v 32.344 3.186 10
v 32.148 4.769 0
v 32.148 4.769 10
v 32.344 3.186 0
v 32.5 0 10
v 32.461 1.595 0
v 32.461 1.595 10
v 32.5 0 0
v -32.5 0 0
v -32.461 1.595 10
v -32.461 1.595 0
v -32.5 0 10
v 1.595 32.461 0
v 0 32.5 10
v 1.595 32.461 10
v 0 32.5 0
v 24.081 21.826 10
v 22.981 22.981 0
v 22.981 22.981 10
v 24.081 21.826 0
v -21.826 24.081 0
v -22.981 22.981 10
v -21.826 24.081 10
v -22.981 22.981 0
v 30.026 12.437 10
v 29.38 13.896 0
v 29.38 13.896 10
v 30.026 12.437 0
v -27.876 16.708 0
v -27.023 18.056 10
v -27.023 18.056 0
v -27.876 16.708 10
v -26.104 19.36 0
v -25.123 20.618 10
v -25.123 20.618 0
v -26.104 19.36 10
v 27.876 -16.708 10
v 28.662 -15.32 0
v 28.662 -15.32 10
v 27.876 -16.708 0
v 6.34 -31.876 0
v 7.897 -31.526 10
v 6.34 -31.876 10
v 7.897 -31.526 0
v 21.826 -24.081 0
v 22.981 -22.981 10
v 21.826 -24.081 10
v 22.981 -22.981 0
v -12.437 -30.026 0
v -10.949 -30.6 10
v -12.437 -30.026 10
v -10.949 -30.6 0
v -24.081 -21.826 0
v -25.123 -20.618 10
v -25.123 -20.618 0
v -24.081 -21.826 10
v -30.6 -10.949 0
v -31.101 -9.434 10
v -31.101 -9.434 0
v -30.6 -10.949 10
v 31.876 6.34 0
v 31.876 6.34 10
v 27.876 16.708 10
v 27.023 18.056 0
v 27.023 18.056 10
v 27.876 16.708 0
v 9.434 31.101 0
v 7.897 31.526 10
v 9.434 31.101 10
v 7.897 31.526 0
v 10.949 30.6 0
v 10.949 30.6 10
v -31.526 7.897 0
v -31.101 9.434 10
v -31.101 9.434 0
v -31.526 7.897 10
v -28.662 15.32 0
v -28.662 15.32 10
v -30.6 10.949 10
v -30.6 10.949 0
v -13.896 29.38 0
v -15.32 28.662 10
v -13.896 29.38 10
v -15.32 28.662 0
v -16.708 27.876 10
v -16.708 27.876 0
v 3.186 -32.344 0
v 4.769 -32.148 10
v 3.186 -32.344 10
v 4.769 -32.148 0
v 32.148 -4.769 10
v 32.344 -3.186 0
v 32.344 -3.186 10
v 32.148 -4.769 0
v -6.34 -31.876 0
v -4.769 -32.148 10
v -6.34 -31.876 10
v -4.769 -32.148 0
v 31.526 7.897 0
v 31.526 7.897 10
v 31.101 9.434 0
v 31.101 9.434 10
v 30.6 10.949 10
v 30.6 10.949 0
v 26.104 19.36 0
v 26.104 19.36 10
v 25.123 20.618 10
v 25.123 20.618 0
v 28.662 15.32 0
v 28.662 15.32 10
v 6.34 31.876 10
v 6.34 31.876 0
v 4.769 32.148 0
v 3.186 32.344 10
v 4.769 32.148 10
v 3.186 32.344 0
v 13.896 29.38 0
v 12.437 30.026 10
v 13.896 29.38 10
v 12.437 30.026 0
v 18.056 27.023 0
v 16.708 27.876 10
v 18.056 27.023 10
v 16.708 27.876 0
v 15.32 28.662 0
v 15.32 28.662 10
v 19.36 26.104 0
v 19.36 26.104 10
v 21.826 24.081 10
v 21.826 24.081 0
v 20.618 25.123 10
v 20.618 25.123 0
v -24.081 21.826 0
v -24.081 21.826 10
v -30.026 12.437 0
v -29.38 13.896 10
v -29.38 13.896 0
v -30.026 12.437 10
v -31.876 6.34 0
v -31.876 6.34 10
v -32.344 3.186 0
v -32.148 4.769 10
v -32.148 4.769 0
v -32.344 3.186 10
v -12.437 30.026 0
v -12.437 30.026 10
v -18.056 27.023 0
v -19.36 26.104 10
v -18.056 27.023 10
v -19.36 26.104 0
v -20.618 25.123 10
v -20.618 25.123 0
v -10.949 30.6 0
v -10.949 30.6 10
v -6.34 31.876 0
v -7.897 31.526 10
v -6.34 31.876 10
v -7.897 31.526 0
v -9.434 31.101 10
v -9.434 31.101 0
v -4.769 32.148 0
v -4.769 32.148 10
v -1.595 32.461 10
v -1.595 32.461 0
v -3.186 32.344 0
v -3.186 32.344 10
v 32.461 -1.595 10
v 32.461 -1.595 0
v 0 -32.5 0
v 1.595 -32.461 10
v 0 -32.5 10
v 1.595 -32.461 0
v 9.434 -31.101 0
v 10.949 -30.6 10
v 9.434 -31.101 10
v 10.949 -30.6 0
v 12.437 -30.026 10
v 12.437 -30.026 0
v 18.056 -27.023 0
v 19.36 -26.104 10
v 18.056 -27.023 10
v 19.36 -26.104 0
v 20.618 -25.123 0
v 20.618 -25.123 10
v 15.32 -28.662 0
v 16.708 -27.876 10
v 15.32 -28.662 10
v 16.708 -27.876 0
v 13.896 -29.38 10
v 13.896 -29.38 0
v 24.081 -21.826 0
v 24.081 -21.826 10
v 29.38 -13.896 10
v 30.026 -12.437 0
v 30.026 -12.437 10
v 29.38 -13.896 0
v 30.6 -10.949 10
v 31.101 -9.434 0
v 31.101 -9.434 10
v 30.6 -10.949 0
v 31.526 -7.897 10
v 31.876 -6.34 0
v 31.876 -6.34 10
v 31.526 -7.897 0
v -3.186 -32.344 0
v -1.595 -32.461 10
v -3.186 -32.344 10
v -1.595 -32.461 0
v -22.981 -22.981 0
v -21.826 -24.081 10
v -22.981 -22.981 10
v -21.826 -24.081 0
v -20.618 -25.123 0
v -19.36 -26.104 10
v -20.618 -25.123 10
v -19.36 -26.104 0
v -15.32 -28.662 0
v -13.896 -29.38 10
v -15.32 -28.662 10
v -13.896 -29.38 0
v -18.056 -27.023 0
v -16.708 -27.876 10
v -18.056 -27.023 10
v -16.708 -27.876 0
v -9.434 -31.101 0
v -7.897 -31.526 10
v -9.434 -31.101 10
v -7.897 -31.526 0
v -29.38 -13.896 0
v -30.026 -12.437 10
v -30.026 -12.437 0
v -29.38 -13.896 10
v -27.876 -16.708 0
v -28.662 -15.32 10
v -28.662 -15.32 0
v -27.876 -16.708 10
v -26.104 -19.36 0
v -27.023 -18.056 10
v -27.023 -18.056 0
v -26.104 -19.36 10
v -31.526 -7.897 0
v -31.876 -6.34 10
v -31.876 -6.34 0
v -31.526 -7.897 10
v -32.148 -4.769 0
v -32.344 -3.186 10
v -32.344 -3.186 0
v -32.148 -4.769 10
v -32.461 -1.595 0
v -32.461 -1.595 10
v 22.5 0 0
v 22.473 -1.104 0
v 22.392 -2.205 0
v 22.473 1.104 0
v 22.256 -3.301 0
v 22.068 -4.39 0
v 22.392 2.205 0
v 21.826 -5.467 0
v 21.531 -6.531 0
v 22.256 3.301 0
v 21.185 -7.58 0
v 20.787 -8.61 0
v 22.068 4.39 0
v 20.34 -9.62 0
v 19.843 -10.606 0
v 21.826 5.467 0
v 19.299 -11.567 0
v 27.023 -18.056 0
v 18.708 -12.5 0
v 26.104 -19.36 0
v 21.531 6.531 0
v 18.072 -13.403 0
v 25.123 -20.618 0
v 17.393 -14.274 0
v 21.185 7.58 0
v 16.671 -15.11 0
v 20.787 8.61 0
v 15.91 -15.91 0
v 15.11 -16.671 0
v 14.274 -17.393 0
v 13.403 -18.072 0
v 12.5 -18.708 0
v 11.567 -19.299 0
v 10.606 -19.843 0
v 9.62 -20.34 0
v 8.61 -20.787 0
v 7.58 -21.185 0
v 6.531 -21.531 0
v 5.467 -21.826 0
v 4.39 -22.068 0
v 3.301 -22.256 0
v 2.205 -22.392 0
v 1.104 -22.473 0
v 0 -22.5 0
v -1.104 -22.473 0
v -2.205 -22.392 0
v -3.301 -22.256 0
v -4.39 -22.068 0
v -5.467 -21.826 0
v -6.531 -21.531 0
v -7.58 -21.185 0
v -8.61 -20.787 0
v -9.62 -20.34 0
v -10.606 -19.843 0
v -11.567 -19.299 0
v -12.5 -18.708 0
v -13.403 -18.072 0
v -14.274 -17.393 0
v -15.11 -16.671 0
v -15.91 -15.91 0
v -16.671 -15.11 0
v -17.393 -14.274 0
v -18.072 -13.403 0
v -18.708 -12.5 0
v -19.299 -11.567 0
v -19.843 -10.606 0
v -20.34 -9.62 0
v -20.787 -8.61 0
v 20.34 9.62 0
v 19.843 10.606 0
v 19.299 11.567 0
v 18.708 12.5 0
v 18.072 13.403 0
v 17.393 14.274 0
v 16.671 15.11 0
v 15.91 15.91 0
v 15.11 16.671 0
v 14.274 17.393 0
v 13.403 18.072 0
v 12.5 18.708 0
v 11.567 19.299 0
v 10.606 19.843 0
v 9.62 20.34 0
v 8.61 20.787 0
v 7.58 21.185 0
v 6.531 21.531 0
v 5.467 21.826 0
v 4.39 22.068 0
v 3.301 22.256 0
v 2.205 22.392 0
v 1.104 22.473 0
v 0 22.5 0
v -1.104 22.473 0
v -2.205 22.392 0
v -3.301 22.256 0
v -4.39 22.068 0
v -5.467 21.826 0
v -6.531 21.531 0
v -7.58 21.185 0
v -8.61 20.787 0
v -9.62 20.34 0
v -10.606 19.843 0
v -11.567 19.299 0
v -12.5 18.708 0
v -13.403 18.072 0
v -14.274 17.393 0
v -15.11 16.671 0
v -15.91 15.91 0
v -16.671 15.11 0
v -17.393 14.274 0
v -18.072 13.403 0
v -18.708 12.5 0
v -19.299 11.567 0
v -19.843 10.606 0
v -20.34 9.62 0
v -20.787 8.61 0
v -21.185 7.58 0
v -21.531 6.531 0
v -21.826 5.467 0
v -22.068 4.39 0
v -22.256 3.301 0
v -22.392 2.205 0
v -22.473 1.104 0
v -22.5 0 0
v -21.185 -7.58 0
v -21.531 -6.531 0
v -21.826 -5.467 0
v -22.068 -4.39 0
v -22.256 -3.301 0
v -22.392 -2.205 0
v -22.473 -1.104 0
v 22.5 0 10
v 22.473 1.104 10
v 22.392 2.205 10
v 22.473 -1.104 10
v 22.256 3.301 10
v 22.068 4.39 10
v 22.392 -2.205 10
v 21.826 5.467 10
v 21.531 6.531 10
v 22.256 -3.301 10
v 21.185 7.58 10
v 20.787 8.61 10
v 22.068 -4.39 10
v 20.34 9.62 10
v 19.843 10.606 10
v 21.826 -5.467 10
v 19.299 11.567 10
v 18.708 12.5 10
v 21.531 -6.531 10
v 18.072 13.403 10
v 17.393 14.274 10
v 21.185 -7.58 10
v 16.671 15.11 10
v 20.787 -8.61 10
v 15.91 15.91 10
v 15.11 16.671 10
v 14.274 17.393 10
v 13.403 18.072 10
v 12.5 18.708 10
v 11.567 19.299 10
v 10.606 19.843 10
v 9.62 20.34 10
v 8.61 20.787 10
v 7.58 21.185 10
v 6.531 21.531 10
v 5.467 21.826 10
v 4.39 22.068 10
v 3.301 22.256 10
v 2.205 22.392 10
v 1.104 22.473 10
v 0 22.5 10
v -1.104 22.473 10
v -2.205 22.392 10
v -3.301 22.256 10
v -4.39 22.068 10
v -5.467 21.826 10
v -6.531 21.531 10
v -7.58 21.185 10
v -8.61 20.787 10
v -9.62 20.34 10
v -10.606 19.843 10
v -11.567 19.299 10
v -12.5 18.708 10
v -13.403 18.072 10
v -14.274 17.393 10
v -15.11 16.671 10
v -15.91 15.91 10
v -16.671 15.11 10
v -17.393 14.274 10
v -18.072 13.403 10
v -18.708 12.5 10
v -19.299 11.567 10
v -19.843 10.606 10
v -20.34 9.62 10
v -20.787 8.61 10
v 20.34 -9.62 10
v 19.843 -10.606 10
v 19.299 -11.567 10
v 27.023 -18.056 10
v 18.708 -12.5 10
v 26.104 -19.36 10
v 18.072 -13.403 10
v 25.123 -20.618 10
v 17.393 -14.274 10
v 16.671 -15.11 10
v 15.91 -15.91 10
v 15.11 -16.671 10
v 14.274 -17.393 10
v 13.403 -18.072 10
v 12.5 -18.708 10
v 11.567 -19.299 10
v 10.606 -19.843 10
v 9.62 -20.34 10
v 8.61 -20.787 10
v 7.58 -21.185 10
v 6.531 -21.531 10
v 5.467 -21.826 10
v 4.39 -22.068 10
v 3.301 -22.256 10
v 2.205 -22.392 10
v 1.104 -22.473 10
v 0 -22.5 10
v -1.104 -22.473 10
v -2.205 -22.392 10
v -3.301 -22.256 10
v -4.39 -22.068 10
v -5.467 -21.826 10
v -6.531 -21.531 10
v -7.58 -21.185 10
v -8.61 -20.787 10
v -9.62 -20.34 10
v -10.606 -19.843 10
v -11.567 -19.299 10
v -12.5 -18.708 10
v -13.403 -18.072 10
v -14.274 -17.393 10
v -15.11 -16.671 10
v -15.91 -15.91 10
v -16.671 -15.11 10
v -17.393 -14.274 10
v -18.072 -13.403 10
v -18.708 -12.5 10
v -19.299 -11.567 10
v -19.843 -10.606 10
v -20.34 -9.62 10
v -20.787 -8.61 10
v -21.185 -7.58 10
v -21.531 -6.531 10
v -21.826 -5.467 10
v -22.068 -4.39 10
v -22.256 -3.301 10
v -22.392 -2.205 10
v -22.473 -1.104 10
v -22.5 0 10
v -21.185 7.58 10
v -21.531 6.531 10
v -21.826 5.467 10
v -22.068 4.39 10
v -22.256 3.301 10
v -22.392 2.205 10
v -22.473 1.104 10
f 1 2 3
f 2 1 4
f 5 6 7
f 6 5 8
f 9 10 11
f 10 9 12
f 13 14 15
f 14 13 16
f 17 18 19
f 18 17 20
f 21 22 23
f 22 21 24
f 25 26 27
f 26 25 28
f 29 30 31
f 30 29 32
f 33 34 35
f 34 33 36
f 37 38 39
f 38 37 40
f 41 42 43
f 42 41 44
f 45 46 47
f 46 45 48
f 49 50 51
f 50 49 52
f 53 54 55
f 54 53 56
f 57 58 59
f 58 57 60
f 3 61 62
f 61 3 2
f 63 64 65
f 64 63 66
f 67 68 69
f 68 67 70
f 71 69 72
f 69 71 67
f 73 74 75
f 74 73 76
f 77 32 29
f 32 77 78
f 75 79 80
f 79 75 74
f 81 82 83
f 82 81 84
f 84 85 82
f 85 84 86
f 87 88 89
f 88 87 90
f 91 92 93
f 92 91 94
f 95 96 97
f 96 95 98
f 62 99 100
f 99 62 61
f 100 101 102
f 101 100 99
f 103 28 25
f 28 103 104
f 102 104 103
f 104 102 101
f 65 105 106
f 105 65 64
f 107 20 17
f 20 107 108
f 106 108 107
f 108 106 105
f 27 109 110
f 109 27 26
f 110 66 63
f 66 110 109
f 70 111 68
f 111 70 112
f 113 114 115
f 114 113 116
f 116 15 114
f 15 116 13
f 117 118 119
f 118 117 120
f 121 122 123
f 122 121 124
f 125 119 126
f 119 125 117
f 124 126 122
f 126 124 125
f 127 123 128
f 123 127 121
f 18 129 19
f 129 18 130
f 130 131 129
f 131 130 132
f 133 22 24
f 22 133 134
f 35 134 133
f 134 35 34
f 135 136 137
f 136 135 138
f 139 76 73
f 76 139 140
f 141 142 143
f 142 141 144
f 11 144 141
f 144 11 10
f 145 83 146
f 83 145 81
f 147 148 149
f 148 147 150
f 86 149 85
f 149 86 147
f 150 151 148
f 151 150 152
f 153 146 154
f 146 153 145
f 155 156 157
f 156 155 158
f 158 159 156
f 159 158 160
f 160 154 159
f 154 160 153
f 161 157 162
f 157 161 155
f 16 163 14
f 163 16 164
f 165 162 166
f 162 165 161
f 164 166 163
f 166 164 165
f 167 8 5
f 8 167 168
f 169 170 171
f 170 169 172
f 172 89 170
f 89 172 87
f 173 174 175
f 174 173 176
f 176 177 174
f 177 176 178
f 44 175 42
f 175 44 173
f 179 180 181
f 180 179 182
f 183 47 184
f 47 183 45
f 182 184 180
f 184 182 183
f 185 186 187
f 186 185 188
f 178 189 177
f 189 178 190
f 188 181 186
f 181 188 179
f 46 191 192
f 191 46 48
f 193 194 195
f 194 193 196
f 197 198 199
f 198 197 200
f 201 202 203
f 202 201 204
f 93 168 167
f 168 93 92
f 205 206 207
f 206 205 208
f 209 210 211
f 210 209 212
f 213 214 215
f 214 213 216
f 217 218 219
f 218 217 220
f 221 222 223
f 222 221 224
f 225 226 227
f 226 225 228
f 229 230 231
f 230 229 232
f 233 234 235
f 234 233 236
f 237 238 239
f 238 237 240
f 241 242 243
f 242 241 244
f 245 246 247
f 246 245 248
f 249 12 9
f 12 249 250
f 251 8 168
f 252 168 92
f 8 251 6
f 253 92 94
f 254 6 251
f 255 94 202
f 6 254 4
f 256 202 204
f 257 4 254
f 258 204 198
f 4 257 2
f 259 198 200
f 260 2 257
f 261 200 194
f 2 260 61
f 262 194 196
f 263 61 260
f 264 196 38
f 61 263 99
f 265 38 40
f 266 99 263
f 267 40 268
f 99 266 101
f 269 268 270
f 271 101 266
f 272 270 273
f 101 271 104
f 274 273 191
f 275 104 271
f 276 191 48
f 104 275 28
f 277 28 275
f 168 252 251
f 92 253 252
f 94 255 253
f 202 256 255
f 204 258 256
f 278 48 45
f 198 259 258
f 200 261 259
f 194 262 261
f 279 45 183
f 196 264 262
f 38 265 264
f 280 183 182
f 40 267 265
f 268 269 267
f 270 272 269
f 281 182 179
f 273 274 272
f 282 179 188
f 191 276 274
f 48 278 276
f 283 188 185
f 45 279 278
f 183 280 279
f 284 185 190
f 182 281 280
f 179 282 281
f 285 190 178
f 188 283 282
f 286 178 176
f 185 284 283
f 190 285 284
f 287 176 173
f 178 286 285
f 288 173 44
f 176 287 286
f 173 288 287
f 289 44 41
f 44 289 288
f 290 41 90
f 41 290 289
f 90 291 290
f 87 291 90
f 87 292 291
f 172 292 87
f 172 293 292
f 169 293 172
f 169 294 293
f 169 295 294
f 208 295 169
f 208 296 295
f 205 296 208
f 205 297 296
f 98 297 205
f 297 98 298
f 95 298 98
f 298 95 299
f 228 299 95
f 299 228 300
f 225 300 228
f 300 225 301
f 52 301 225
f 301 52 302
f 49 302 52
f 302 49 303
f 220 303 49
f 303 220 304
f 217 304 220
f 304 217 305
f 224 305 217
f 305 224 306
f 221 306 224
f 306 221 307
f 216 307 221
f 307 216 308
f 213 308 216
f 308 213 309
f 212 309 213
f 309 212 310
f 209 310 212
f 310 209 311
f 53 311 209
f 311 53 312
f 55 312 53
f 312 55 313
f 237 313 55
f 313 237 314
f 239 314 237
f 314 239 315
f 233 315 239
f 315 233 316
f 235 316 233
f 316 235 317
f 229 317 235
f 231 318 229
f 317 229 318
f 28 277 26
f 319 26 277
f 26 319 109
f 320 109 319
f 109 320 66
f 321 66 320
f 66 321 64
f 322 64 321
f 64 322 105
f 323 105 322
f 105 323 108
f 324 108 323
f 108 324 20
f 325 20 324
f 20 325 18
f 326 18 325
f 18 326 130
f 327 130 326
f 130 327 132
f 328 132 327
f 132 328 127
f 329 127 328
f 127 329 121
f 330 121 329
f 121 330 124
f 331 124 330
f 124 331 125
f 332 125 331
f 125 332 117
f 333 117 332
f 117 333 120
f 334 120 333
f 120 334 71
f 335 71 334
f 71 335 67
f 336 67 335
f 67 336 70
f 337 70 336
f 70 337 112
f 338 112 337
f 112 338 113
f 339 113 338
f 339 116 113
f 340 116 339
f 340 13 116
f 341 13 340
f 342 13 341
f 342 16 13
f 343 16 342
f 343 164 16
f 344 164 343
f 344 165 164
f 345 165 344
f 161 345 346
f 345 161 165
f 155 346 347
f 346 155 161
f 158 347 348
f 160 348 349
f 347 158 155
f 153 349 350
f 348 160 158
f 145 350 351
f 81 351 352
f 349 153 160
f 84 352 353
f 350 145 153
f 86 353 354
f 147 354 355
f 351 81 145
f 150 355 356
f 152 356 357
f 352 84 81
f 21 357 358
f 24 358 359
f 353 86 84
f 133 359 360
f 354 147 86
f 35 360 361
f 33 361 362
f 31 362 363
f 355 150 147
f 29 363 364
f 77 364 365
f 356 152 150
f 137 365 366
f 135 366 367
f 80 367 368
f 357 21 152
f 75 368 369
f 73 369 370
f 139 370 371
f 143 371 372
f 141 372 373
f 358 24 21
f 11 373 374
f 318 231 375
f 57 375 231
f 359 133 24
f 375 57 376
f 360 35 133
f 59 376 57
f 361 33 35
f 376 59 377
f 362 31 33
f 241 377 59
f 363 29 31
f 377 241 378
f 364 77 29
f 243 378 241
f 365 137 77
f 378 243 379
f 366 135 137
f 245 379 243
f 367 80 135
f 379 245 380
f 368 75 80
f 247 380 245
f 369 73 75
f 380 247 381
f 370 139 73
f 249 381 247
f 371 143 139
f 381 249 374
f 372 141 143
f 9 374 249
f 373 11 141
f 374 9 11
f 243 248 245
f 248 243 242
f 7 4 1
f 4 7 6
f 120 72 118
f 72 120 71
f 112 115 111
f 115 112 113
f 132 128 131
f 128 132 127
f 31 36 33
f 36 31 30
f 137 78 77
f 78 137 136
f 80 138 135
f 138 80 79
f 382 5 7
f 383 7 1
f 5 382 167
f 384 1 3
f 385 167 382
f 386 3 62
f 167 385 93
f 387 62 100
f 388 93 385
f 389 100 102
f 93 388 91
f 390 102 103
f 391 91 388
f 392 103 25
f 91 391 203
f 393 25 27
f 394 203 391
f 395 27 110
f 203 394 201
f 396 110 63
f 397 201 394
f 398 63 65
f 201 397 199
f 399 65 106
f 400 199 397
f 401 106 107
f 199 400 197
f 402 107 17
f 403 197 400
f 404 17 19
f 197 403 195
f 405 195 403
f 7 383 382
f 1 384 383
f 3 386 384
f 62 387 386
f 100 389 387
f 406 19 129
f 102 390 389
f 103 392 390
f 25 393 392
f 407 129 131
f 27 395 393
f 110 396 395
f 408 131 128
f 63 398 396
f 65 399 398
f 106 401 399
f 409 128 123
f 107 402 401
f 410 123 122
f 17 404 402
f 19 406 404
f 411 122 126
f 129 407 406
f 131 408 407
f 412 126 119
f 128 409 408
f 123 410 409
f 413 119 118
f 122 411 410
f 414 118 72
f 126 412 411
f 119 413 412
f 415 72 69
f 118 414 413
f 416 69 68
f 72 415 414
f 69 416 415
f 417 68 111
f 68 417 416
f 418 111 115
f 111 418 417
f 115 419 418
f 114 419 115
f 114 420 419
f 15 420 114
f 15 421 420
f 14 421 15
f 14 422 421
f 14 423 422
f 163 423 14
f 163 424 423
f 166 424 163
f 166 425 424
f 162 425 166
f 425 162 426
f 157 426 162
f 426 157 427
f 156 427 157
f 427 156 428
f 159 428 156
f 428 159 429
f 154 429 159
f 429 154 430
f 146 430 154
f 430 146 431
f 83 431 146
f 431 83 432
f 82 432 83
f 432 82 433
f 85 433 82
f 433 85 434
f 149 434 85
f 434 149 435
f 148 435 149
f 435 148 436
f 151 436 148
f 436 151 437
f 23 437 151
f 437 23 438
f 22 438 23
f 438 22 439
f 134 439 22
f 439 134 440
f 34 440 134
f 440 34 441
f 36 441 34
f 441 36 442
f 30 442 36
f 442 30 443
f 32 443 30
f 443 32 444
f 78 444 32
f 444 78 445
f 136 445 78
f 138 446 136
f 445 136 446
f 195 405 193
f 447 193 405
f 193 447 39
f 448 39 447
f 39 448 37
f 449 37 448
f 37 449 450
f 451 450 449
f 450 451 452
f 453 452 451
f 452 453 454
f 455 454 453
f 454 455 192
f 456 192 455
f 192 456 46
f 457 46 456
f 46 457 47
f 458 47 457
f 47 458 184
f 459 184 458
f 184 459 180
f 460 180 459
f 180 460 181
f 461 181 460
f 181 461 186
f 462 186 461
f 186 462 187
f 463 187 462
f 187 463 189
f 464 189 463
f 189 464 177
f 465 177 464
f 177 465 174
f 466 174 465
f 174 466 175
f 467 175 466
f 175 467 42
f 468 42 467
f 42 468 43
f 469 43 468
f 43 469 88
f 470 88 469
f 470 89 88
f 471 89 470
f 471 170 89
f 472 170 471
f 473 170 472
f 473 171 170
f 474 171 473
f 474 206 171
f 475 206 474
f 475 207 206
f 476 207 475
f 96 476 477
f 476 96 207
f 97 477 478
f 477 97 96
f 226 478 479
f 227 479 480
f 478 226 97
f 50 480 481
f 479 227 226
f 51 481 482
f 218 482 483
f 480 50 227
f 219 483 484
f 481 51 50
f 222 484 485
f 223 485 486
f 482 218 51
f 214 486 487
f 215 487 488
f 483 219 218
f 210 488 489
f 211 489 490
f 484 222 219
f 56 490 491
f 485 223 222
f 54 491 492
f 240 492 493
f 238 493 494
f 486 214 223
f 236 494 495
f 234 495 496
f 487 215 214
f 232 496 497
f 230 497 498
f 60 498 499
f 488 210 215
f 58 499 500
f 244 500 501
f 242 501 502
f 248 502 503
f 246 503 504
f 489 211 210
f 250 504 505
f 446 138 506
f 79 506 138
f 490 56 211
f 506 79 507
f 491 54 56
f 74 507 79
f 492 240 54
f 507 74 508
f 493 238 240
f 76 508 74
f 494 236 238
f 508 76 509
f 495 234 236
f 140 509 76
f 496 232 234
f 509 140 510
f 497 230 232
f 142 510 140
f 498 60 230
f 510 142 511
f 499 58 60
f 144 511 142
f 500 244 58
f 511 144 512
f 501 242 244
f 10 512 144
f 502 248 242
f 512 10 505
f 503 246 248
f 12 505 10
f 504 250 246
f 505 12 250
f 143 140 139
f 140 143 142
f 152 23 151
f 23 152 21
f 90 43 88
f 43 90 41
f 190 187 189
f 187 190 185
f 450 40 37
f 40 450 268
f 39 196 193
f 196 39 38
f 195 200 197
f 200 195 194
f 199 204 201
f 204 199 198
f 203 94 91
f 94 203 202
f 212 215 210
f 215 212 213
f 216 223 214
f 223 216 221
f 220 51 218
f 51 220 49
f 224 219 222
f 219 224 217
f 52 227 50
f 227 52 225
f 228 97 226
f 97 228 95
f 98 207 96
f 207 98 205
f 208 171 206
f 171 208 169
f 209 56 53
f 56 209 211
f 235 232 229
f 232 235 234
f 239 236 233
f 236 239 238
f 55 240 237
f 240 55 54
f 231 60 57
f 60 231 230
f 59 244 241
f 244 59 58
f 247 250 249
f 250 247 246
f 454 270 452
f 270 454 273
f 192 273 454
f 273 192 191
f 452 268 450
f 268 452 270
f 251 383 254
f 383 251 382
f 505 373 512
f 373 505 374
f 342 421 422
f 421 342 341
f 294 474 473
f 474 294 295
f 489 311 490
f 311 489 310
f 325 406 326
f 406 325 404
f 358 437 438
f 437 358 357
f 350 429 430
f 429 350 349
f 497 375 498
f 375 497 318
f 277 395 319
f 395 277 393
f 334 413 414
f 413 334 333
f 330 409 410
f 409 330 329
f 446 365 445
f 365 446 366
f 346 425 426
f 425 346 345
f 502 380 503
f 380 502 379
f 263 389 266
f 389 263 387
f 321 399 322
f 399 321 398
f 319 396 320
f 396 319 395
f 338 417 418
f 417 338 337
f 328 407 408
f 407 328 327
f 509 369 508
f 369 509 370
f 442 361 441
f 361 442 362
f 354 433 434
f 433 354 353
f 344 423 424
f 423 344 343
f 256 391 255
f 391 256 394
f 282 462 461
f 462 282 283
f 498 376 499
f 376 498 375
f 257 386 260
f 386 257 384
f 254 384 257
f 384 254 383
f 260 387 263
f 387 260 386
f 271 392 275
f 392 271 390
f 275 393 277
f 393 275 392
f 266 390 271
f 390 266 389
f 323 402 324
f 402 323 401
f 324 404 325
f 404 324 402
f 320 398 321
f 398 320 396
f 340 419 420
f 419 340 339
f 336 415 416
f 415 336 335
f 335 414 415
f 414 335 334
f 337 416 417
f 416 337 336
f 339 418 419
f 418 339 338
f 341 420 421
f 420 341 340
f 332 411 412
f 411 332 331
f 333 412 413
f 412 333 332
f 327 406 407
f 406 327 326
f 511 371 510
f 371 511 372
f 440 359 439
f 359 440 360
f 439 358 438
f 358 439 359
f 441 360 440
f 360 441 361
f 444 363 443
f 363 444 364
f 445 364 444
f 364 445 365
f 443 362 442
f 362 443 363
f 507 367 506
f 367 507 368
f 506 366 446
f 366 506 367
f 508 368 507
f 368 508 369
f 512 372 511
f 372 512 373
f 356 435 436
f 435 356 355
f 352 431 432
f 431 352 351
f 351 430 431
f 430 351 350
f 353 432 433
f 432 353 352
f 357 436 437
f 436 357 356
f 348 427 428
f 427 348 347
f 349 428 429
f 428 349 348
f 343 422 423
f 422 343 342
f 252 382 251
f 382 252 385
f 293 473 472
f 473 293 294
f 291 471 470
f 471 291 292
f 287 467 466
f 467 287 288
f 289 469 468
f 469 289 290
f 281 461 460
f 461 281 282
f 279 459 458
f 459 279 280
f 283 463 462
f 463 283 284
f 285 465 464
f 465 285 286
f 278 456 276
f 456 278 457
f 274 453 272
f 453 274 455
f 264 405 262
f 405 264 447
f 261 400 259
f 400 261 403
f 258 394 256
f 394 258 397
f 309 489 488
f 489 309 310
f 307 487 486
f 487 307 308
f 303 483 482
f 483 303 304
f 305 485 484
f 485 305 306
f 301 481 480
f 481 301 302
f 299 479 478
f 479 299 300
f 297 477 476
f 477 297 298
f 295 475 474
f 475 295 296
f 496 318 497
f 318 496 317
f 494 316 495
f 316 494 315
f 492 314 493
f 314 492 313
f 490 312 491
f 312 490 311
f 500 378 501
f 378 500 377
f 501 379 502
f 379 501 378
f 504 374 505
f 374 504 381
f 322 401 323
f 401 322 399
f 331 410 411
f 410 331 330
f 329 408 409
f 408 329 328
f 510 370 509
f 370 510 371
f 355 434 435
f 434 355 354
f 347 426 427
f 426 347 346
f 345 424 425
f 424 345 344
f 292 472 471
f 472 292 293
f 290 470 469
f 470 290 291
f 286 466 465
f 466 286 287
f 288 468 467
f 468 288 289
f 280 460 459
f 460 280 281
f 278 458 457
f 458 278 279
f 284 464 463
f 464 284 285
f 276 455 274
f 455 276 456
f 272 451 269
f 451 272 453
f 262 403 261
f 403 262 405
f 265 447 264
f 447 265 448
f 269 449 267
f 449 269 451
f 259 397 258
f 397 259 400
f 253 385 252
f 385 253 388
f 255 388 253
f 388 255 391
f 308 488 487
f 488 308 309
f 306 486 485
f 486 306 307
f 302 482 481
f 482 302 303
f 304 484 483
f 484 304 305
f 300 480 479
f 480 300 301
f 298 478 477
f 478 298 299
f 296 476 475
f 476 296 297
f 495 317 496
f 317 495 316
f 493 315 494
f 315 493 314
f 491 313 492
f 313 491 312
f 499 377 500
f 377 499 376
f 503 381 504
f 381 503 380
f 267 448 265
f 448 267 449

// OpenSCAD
od=65;
id=45;
h=10;

difference() {
    cylinder(h, d=od, $fn=128);
    cylinder(h, d=id, $fn=128);
}
